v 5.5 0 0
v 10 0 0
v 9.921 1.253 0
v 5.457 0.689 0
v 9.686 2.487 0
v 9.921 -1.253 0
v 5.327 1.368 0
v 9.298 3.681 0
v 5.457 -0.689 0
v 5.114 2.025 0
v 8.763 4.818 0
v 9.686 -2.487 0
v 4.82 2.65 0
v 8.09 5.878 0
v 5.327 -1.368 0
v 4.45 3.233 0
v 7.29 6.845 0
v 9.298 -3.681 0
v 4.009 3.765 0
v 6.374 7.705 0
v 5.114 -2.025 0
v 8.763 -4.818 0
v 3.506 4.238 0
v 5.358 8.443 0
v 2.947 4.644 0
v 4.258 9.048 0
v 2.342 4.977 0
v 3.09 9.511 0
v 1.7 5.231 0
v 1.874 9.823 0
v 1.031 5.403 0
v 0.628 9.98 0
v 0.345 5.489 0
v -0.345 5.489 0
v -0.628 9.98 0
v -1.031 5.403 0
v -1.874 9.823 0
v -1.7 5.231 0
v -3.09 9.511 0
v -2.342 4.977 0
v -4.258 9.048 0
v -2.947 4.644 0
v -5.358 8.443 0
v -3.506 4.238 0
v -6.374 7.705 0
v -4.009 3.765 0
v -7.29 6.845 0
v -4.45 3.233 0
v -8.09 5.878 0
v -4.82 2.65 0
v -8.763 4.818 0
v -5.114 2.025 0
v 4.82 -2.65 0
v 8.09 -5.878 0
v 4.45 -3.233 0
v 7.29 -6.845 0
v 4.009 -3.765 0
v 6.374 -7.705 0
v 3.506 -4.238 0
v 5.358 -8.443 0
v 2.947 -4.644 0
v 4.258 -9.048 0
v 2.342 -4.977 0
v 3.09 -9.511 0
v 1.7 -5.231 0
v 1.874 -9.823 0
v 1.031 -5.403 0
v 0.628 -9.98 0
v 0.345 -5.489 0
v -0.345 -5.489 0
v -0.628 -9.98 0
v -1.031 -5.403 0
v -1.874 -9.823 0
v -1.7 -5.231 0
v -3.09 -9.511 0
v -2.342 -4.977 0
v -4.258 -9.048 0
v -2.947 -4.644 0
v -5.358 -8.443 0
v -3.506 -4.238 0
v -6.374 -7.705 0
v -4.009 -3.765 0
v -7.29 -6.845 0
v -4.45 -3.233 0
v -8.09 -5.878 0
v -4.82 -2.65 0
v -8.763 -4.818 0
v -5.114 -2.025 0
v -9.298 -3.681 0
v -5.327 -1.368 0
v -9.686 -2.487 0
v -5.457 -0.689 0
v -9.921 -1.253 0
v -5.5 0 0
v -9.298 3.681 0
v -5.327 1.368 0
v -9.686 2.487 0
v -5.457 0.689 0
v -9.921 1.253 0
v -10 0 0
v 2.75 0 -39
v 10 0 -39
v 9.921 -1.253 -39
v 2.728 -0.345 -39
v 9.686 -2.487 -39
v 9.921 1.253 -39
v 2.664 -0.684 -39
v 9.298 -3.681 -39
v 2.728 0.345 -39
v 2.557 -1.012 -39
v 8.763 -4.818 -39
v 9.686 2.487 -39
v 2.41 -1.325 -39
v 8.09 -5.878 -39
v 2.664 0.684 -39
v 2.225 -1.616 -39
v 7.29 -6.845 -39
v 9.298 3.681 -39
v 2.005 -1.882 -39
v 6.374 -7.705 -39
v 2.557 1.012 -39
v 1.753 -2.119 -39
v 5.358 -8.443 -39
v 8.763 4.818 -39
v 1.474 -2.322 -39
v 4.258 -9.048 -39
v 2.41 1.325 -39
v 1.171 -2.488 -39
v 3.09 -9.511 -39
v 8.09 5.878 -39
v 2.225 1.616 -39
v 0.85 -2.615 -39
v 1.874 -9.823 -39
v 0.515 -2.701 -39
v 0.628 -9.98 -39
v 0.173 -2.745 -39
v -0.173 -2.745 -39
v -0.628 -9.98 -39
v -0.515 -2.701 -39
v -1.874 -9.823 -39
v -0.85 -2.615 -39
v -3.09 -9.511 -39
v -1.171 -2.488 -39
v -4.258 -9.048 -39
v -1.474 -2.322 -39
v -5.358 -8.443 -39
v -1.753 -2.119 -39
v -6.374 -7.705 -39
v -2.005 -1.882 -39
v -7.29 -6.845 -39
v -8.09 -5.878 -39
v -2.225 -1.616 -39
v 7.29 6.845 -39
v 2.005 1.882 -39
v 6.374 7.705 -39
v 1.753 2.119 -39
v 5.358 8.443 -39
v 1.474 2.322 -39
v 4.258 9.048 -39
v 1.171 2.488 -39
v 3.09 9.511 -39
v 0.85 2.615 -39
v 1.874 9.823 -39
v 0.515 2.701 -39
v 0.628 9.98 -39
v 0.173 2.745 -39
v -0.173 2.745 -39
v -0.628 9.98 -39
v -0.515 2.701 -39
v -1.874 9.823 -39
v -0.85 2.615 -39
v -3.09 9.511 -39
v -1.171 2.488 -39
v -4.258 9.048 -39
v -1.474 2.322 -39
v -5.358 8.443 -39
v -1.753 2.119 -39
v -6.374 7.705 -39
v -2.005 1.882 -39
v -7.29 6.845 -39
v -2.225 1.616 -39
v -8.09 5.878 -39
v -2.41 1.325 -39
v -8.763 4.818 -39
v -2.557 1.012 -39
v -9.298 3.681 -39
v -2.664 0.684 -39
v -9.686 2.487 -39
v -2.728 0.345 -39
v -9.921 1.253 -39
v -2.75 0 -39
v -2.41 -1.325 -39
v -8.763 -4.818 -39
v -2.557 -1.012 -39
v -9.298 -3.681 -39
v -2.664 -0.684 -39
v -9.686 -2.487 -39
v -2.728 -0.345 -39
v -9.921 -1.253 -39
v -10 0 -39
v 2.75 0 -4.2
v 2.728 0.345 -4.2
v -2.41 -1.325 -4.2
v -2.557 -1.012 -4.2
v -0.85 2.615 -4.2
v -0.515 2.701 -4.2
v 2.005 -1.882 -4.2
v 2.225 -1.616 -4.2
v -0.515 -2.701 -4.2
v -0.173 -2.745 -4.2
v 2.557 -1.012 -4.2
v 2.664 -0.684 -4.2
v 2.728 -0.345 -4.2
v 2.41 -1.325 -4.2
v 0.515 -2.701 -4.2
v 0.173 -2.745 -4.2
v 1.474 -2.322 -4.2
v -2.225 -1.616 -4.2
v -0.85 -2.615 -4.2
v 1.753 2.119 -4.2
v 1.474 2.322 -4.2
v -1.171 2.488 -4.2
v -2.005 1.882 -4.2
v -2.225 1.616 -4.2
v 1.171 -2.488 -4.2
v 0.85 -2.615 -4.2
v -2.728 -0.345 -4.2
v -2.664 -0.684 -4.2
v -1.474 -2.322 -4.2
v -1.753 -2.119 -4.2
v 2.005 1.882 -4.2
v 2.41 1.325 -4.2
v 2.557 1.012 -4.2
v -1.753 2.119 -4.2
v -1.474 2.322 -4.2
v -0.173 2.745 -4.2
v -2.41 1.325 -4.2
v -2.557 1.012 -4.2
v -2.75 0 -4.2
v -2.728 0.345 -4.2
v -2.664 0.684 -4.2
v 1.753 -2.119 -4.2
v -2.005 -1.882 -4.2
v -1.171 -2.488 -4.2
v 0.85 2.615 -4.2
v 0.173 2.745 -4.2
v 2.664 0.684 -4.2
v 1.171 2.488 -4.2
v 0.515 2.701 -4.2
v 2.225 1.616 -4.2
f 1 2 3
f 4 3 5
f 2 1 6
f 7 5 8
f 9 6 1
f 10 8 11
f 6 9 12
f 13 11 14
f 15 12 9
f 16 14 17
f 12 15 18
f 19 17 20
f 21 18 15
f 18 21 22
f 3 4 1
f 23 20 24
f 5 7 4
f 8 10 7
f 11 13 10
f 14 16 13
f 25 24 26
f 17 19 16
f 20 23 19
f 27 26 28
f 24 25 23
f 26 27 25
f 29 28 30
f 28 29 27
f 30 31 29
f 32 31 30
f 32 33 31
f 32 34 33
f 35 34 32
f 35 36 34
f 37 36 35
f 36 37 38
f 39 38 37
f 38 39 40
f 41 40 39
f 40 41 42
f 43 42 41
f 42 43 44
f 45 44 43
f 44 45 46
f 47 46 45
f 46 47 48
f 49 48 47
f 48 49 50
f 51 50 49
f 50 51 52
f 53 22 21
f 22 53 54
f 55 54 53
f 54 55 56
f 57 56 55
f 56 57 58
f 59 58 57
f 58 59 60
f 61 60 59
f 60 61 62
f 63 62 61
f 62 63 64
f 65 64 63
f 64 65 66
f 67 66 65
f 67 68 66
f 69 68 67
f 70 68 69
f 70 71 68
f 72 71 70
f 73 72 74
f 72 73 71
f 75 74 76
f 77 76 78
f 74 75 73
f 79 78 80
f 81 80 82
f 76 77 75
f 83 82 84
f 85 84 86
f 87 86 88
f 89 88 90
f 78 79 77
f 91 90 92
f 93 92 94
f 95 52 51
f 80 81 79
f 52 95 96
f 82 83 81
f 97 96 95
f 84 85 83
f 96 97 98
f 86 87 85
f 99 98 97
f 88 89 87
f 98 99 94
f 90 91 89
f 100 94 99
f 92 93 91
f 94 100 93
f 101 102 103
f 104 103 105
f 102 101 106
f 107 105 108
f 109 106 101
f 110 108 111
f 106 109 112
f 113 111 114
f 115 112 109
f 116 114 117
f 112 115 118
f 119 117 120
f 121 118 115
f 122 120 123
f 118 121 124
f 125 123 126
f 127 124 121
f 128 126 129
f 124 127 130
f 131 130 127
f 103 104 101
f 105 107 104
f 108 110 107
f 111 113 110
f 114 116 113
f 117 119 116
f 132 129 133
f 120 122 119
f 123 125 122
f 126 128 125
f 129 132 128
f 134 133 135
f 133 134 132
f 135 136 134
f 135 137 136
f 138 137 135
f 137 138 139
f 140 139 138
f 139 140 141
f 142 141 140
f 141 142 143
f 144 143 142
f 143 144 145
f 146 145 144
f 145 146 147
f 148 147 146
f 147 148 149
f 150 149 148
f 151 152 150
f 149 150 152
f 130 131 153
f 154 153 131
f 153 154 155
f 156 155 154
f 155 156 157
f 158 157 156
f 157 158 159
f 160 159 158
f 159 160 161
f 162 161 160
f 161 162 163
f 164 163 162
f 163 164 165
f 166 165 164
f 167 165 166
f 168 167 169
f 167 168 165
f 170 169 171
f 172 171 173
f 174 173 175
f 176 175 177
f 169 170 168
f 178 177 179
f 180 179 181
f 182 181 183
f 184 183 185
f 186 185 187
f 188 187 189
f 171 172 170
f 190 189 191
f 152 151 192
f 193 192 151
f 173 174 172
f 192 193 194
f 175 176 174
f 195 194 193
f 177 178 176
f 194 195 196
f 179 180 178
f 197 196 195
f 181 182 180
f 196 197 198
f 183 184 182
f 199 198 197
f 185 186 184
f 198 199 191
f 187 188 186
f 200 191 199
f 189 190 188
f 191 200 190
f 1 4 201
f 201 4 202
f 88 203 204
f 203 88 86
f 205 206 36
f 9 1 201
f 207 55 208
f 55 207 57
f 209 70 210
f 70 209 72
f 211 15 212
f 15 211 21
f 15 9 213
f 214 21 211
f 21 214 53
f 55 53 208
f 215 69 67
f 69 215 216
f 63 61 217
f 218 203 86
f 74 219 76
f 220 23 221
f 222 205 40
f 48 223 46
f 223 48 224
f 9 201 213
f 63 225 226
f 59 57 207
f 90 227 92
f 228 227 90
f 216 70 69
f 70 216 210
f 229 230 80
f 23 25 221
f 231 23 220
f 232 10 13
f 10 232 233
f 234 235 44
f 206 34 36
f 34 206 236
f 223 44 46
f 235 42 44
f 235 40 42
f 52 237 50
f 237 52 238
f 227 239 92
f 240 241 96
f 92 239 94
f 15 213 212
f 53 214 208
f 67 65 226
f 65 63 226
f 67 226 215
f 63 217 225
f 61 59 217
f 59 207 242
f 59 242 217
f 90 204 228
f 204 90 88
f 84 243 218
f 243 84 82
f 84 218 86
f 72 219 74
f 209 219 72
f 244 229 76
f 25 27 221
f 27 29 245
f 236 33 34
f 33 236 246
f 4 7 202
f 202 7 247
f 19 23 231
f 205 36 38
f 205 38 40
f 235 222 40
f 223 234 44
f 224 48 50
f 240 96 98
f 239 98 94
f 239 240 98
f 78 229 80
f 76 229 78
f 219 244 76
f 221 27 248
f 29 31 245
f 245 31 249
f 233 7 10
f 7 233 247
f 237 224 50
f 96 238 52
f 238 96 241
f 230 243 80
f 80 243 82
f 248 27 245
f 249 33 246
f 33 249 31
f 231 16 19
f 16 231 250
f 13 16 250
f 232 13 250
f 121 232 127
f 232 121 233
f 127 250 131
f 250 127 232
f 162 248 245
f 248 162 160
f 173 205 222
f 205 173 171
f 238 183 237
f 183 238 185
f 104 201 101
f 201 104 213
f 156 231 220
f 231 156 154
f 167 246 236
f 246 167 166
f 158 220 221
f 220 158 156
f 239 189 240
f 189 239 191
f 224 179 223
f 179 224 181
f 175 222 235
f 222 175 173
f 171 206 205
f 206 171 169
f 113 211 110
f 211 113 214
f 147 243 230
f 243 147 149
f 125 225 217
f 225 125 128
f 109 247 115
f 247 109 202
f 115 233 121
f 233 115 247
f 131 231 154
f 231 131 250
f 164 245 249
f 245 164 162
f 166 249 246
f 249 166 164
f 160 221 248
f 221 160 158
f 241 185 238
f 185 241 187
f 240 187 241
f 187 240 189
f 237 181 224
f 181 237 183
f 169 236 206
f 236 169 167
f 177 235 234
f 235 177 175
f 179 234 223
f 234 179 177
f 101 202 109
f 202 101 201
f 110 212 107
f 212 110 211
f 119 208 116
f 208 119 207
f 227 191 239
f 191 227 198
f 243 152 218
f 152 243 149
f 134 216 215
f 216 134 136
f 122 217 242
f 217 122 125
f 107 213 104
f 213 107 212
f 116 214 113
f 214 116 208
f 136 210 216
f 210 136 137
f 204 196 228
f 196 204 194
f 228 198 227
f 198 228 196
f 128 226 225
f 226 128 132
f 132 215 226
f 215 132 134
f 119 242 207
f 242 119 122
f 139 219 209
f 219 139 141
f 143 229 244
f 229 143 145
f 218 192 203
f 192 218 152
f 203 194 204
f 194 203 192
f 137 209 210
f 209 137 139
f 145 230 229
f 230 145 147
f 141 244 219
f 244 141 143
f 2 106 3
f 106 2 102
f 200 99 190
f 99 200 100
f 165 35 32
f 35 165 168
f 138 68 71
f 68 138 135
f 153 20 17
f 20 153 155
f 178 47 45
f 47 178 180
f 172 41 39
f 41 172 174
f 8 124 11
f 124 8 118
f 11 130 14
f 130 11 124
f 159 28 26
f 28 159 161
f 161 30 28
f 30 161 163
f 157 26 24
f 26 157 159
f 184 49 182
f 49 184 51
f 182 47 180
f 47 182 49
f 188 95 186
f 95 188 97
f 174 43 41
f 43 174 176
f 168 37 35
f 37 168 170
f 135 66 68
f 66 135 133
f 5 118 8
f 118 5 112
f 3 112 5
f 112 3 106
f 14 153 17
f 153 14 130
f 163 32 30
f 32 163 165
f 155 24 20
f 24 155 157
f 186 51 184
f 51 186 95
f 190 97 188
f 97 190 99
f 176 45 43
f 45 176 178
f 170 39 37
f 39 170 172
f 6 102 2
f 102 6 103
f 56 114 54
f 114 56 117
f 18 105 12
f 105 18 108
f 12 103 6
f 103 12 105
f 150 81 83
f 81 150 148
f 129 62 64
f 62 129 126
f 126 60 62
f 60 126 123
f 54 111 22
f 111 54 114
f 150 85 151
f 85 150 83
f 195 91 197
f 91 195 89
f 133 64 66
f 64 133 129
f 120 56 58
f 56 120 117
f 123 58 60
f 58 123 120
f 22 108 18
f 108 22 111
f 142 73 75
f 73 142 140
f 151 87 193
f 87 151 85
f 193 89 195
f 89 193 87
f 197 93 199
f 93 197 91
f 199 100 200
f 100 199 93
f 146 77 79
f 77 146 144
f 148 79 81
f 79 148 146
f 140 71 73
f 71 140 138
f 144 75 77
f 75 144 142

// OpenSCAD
$fn = 50;


difference() {
	union() {
		translate(v = [0, 0, -39.0000000000]) {
			cylinder(h = 39, r = 10.0000000000);
		}
	}
	union() {
		translate(v = [0, 0, 0]) {
			rotate(a = [0, 0, 0]) {
				difference() {
					union() {
						#translate(v = [0, 0, -39.0000000000]) {
							cylinder(h = 39, r = 2.2500000000);
						}
						#translate(v = [0, 0, -4.2000000000]) {
							cylinder(h = 4.2000000000, r = 10.0000000000, r1 = 2.7500000000, r2 = 5.5000000000);
						}
						#translate(v = [0, 0, -39.0000000000]) {
							cylinder(h = 39, r = 2.7500000000);
						}
						#translate(v = [0, 0, -39.0000000000]) {
							cylinder(h = 39, r = 2.2500000000);
						}
					}
					union();
				}
			}
		}
	}
}
